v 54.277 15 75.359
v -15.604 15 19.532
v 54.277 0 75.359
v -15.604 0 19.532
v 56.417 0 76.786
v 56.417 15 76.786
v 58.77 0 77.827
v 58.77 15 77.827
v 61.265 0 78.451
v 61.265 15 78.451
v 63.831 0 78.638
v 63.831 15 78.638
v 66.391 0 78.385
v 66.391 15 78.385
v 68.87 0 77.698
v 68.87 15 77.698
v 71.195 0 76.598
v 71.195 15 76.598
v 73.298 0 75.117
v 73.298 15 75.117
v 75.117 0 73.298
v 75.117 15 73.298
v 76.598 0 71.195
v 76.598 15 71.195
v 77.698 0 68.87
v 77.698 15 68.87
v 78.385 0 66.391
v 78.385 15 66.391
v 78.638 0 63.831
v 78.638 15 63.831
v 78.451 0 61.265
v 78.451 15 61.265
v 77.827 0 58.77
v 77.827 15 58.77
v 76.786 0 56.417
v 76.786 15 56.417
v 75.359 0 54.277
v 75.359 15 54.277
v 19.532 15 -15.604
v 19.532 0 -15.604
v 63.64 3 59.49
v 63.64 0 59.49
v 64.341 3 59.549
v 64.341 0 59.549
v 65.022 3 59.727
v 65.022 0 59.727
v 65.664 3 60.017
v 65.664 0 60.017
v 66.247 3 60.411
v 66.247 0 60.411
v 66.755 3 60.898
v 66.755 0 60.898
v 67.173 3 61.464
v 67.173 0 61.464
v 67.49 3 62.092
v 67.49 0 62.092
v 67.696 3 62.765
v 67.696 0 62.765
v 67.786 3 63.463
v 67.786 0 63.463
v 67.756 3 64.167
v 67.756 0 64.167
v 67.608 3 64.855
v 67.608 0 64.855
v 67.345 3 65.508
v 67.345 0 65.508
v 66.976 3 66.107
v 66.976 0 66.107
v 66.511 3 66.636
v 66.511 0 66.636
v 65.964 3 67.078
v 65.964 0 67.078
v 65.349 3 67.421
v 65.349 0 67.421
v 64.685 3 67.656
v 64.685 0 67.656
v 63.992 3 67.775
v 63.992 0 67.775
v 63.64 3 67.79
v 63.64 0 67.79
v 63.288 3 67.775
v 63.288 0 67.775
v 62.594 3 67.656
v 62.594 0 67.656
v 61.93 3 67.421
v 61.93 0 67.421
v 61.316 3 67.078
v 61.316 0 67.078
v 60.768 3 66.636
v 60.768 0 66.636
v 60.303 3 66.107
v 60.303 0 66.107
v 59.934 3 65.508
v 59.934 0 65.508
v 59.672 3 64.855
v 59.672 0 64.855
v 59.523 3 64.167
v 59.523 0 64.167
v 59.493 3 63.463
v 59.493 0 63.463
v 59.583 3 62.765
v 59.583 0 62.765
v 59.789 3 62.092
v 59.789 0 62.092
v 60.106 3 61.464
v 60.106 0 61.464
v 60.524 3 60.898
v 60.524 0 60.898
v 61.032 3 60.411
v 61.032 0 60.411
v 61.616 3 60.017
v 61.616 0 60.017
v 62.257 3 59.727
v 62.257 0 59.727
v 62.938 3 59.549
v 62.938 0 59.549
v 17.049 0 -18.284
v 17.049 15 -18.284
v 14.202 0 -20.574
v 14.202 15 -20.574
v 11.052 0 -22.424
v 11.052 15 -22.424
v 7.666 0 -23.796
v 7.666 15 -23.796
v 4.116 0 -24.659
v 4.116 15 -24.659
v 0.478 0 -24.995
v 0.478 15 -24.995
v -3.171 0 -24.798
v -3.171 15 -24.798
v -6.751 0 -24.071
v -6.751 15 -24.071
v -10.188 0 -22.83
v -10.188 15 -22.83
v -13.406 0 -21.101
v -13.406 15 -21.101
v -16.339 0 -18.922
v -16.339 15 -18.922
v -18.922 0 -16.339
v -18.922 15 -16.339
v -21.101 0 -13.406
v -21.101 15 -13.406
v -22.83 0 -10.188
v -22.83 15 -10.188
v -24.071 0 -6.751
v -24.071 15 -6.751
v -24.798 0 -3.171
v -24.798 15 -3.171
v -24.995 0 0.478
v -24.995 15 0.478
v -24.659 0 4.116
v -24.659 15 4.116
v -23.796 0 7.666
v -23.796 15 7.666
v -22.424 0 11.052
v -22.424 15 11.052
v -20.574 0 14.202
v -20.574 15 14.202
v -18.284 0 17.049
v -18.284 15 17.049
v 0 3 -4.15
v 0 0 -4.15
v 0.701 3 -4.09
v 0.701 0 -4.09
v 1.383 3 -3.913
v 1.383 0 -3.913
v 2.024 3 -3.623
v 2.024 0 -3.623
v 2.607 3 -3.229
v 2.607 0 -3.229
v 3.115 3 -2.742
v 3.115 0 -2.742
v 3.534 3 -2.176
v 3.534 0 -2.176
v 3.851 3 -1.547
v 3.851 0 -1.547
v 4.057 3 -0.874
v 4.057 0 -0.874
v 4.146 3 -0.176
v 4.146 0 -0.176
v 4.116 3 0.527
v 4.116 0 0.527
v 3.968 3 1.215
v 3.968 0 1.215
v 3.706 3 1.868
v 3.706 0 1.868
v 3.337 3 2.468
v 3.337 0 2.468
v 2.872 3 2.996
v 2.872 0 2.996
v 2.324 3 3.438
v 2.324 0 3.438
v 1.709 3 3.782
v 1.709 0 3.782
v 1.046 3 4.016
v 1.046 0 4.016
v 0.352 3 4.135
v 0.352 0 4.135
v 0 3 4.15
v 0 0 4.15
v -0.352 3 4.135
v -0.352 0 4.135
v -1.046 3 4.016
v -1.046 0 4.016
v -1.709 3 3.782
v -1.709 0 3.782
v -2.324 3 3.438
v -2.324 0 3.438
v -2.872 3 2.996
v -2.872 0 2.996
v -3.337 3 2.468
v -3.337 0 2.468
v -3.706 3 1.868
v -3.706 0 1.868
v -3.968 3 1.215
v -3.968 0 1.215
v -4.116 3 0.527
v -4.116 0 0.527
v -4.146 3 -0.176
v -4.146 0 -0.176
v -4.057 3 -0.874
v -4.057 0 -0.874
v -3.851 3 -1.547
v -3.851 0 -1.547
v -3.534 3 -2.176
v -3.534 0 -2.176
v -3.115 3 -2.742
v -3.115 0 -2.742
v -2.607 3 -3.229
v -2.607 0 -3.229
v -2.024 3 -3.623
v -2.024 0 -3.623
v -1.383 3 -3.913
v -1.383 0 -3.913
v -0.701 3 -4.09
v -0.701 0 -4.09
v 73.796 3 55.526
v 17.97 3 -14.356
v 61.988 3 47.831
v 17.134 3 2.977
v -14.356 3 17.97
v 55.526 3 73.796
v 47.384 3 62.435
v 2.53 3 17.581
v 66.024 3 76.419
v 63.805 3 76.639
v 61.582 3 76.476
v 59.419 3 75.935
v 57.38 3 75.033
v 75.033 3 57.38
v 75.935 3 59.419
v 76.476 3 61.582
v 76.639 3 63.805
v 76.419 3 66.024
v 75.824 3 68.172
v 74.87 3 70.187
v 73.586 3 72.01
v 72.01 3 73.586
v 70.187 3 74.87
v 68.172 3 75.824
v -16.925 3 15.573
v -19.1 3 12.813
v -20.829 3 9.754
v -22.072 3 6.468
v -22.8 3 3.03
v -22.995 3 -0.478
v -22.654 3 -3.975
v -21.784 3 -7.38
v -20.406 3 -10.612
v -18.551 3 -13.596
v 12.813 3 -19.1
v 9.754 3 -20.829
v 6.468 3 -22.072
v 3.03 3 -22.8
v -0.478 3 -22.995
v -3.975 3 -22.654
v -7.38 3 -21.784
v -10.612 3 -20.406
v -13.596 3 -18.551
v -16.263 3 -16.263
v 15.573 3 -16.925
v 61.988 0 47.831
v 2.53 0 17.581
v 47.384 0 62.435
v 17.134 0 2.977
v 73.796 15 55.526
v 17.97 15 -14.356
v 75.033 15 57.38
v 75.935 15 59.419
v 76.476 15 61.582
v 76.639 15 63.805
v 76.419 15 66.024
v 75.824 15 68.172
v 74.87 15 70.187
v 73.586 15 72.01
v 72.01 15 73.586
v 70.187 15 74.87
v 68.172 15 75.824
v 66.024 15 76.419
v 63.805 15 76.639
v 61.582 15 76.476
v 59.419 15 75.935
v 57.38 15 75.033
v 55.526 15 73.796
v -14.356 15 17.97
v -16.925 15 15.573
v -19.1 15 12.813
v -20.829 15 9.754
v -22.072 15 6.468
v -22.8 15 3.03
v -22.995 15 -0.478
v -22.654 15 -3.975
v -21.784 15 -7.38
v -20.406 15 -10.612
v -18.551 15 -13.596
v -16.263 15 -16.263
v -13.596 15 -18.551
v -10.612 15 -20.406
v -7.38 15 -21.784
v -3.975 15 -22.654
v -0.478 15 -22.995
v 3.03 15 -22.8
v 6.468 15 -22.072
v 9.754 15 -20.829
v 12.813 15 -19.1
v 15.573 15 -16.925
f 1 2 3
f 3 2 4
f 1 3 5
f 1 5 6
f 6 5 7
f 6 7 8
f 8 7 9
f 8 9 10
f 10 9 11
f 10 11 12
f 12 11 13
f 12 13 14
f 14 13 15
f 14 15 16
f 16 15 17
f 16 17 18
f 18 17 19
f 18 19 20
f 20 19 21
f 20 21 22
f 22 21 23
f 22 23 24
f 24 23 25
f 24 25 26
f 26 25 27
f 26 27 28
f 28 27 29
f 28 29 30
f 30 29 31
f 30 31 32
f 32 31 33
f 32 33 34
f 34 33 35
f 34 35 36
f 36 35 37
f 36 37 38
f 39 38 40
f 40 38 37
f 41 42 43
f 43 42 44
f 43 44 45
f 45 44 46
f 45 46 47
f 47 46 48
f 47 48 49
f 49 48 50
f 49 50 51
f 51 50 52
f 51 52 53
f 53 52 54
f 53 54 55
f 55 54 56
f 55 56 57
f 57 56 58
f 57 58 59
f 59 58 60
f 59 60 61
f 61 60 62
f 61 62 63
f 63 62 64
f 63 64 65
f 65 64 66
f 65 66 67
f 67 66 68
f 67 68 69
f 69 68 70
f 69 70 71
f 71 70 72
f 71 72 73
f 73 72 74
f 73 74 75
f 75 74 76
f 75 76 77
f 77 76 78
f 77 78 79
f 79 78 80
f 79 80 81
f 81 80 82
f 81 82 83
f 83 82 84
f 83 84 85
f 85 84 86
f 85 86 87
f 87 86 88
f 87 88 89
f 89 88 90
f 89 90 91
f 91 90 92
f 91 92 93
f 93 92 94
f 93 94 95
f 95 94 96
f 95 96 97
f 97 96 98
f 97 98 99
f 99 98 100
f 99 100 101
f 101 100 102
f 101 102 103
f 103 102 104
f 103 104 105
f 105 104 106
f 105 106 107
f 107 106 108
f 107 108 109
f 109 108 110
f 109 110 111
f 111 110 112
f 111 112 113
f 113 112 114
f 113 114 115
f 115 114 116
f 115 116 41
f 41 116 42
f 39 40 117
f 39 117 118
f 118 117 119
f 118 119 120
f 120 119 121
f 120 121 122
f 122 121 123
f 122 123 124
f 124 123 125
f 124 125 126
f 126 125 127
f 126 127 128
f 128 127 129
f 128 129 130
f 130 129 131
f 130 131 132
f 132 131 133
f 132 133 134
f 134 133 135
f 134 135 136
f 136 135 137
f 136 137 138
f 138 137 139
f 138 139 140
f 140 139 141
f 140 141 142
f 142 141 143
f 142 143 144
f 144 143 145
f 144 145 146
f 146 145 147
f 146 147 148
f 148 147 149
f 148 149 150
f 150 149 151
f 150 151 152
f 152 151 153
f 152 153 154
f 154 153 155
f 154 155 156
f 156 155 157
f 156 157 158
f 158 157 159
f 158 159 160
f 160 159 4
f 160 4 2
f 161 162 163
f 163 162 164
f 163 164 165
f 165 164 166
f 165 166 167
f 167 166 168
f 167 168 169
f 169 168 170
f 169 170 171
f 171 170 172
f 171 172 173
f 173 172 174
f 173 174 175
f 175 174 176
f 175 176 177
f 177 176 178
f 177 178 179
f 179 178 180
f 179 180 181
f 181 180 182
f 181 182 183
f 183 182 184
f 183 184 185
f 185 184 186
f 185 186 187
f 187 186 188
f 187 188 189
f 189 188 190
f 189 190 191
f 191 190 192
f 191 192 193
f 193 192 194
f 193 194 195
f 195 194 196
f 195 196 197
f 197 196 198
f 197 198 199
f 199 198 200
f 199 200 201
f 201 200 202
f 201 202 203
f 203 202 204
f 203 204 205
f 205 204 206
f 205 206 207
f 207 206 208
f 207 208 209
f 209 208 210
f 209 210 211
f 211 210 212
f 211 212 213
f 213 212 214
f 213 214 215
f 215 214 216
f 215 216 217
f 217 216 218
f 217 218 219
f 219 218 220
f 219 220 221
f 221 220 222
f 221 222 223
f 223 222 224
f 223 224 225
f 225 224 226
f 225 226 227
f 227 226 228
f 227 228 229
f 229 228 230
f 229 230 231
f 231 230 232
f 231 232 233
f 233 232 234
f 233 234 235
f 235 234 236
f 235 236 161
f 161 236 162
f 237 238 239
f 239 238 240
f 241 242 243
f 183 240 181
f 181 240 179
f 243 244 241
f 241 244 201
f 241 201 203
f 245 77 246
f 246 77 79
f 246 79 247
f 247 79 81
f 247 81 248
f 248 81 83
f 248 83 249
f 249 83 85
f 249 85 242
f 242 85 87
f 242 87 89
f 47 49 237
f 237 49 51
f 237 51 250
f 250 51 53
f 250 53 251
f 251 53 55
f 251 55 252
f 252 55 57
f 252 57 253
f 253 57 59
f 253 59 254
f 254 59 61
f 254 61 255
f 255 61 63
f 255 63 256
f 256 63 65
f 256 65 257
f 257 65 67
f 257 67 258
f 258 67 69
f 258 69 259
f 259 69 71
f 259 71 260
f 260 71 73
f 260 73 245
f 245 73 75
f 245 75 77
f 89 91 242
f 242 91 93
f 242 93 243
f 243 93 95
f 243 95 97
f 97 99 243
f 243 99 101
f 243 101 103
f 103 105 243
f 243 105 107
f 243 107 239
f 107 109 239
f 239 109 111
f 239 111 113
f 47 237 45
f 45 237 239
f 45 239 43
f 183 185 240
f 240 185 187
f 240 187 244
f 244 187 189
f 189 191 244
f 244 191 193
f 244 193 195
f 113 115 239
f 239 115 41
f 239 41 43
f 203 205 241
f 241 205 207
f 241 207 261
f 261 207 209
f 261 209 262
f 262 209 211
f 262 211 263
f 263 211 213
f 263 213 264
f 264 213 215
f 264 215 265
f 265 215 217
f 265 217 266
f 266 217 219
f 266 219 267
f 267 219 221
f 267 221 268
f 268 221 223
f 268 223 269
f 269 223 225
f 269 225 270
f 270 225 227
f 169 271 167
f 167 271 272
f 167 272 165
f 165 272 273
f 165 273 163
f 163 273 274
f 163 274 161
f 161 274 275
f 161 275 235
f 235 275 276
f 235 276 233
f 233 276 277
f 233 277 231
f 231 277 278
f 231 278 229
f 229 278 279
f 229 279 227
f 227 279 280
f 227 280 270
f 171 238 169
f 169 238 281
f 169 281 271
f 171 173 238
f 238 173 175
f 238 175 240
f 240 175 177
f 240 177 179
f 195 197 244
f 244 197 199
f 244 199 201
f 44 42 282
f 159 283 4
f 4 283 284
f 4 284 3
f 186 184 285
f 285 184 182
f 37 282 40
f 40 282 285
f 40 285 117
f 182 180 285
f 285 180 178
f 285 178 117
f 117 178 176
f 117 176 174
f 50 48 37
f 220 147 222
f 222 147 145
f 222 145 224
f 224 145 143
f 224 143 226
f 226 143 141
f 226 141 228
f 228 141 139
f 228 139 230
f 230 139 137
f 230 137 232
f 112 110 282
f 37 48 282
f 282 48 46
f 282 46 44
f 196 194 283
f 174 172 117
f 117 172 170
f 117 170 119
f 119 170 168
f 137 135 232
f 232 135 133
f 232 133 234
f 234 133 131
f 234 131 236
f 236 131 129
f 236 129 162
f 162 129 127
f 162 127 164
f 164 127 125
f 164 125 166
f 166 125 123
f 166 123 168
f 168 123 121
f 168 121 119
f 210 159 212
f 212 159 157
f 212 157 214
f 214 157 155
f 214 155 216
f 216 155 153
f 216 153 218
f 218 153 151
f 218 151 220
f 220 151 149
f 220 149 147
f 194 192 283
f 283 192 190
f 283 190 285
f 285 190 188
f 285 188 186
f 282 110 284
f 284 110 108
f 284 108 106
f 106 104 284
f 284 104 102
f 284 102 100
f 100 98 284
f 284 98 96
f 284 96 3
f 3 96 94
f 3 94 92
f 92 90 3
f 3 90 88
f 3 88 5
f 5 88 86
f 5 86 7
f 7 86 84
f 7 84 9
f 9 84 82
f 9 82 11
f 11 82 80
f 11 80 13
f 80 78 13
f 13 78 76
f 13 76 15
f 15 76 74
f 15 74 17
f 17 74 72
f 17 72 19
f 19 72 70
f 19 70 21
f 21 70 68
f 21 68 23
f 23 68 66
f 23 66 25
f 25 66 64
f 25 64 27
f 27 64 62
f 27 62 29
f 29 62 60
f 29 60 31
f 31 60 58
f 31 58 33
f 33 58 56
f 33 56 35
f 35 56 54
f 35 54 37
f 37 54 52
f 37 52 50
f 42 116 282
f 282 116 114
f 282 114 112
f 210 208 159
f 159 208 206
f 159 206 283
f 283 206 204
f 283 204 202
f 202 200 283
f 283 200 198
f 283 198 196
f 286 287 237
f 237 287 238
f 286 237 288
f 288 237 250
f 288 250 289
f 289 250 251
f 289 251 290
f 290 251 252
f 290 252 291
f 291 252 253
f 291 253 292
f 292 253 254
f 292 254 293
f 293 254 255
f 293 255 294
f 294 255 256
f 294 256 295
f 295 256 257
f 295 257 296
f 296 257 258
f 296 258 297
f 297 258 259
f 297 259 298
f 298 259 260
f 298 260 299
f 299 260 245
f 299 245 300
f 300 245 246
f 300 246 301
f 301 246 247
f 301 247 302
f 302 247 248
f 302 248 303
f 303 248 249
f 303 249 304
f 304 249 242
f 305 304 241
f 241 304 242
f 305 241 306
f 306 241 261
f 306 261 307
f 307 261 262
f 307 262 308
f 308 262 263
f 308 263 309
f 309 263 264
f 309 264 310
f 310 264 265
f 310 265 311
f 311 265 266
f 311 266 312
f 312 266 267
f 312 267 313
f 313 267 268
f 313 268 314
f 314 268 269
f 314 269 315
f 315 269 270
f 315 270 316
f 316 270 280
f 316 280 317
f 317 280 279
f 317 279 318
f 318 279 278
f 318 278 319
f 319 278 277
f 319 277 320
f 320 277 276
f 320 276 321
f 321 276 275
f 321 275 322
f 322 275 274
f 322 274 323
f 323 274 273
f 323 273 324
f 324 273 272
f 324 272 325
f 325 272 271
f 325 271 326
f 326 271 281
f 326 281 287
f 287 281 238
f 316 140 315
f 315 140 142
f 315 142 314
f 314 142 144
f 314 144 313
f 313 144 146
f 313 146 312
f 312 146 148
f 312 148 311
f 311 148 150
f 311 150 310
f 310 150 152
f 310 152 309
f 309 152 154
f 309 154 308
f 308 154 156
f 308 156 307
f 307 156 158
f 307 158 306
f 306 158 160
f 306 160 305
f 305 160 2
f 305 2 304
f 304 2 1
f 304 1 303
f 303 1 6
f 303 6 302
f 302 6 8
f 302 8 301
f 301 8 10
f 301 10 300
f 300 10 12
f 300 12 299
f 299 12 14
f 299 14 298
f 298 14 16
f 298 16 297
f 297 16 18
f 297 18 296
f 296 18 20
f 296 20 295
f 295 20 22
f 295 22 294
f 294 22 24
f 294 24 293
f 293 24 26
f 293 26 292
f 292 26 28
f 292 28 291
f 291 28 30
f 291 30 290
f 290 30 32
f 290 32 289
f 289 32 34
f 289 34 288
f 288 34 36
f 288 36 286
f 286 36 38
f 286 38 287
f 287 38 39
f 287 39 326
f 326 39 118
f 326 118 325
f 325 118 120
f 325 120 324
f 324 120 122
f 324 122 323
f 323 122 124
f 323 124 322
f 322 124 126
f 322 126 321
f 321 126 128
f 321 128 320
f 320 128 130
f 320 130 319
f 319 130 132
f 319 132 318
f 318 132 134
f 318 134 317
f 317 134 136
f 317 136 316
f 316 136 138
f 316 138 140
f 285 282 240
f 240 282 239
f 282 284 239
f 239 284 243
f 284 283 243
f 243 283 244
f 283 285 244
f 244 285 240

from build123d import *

# Parameters (mm, degrees)
SKETCH_1_R          = 4.15
EXTRUDE_1_DEPTH     = 3
EXTRUDE_2_DEPTH     = 12
CUT_EXTRUDE_1_DEPTH = 112.858735101


with BuildPart() as part:
    # 草图1 → 凸台-拉伸1 (new body)
    with BuildSketch(Plane(origin=(0, 0, 0), x_dir=(1, 0, 0), z_dir=(0, 1, 0))):
        with BuildLine():
            ThreePointArc((19.532394726, 15.60402372), (-17.67766953, 17.67766953), (-15.60402372, -19.532394726))
            Line((-15.60402372, -19.532394726), (54.277196075, -75.359047143))
            ThreePointArc((54.277196075, -75.359047143), (74.246212025, -74.246212025), (75.359047143, -54.277196075))
            Line((75.359047143, -54.277196075), (19.532394726, 15.60402372))
        make_face()
        with Locations(Location((0, 0, 0), (0, 0, 270))):
            Circle(SKETCH_1_R, mode=Mode.SUBTRACT)
        with Locations(Location((63.639610307, -63.639610307, 0), (0, 0, 270))):
            Circle(SKETCH_1_R, mode=Mode.SUBTRACT)
    extrude(amount=EXTRUDE_1_DEPTH)

    # 草图3 → 凸台-拉伸2 (add)
    with BuildSketch(Plane(origin=(0, 3, 0), x_dir=(1, 0, 0), z_dir=(0, 1, 0))):
        with BuildLine():
            ThreePointArc((54.277196075, -75.359047143), (74.246212025, -74.246212025), (75.359047143, -54.277196075))
            Line((75.359047143, -54.277196075), (19.532394726, 15.60402372))
            ThreePointArc((19.532394726, 15.60402372), (-17.67766953, 17.67766953), (-15.60402372, -19.532394726))
            Line((-15.60402372, -19.532394726), (54.277196075, -75.359047143))
        make_face()
        with BuildLine():
            Line((17.969803148, 14.355701822), (73.796455565, -55.525517972))
            ThreePointArc((73.796455565, -55.525517972), (72.831998462, -72.831998462), (55.525517972, -73.796455565))
            Line((55.525517972, -73.796455565), (-14.355701822, -17.969803148))
            ThreePointArc((-14.355701822, -17.969803148), (-16.263455967, 16.263455967), (17.969803148, 14.355701822))
        make_face(mode=Mode.SUBTRACT)
    extrude(amount=EXTRUDE_2_DEPTH)

    # 草图4 → 切除-拉伸1 (cut, through all)
    with BuildSketch(Plane(origin=(0, 3, 0), x_dir=(1, 0, 0), z_dir=(0, 1, 0))):
        Polygon((17.133662373, -2.976992155), (10.055327264, -10.055327264), (54.909619217, -54.909619217), (61.987954325, -47.831284108), align=None)
        Polygon((54.909619217, -54.909619217), (10.055327264, -10.055327264), (2.529939412, -17.580715117), (47.384231364, -62.435007069), align=None)
    extrude(amount=-CUT_EXTRUDE_1_DEPTH, mode=Mode.SUBTRACT)


solid = part.part
